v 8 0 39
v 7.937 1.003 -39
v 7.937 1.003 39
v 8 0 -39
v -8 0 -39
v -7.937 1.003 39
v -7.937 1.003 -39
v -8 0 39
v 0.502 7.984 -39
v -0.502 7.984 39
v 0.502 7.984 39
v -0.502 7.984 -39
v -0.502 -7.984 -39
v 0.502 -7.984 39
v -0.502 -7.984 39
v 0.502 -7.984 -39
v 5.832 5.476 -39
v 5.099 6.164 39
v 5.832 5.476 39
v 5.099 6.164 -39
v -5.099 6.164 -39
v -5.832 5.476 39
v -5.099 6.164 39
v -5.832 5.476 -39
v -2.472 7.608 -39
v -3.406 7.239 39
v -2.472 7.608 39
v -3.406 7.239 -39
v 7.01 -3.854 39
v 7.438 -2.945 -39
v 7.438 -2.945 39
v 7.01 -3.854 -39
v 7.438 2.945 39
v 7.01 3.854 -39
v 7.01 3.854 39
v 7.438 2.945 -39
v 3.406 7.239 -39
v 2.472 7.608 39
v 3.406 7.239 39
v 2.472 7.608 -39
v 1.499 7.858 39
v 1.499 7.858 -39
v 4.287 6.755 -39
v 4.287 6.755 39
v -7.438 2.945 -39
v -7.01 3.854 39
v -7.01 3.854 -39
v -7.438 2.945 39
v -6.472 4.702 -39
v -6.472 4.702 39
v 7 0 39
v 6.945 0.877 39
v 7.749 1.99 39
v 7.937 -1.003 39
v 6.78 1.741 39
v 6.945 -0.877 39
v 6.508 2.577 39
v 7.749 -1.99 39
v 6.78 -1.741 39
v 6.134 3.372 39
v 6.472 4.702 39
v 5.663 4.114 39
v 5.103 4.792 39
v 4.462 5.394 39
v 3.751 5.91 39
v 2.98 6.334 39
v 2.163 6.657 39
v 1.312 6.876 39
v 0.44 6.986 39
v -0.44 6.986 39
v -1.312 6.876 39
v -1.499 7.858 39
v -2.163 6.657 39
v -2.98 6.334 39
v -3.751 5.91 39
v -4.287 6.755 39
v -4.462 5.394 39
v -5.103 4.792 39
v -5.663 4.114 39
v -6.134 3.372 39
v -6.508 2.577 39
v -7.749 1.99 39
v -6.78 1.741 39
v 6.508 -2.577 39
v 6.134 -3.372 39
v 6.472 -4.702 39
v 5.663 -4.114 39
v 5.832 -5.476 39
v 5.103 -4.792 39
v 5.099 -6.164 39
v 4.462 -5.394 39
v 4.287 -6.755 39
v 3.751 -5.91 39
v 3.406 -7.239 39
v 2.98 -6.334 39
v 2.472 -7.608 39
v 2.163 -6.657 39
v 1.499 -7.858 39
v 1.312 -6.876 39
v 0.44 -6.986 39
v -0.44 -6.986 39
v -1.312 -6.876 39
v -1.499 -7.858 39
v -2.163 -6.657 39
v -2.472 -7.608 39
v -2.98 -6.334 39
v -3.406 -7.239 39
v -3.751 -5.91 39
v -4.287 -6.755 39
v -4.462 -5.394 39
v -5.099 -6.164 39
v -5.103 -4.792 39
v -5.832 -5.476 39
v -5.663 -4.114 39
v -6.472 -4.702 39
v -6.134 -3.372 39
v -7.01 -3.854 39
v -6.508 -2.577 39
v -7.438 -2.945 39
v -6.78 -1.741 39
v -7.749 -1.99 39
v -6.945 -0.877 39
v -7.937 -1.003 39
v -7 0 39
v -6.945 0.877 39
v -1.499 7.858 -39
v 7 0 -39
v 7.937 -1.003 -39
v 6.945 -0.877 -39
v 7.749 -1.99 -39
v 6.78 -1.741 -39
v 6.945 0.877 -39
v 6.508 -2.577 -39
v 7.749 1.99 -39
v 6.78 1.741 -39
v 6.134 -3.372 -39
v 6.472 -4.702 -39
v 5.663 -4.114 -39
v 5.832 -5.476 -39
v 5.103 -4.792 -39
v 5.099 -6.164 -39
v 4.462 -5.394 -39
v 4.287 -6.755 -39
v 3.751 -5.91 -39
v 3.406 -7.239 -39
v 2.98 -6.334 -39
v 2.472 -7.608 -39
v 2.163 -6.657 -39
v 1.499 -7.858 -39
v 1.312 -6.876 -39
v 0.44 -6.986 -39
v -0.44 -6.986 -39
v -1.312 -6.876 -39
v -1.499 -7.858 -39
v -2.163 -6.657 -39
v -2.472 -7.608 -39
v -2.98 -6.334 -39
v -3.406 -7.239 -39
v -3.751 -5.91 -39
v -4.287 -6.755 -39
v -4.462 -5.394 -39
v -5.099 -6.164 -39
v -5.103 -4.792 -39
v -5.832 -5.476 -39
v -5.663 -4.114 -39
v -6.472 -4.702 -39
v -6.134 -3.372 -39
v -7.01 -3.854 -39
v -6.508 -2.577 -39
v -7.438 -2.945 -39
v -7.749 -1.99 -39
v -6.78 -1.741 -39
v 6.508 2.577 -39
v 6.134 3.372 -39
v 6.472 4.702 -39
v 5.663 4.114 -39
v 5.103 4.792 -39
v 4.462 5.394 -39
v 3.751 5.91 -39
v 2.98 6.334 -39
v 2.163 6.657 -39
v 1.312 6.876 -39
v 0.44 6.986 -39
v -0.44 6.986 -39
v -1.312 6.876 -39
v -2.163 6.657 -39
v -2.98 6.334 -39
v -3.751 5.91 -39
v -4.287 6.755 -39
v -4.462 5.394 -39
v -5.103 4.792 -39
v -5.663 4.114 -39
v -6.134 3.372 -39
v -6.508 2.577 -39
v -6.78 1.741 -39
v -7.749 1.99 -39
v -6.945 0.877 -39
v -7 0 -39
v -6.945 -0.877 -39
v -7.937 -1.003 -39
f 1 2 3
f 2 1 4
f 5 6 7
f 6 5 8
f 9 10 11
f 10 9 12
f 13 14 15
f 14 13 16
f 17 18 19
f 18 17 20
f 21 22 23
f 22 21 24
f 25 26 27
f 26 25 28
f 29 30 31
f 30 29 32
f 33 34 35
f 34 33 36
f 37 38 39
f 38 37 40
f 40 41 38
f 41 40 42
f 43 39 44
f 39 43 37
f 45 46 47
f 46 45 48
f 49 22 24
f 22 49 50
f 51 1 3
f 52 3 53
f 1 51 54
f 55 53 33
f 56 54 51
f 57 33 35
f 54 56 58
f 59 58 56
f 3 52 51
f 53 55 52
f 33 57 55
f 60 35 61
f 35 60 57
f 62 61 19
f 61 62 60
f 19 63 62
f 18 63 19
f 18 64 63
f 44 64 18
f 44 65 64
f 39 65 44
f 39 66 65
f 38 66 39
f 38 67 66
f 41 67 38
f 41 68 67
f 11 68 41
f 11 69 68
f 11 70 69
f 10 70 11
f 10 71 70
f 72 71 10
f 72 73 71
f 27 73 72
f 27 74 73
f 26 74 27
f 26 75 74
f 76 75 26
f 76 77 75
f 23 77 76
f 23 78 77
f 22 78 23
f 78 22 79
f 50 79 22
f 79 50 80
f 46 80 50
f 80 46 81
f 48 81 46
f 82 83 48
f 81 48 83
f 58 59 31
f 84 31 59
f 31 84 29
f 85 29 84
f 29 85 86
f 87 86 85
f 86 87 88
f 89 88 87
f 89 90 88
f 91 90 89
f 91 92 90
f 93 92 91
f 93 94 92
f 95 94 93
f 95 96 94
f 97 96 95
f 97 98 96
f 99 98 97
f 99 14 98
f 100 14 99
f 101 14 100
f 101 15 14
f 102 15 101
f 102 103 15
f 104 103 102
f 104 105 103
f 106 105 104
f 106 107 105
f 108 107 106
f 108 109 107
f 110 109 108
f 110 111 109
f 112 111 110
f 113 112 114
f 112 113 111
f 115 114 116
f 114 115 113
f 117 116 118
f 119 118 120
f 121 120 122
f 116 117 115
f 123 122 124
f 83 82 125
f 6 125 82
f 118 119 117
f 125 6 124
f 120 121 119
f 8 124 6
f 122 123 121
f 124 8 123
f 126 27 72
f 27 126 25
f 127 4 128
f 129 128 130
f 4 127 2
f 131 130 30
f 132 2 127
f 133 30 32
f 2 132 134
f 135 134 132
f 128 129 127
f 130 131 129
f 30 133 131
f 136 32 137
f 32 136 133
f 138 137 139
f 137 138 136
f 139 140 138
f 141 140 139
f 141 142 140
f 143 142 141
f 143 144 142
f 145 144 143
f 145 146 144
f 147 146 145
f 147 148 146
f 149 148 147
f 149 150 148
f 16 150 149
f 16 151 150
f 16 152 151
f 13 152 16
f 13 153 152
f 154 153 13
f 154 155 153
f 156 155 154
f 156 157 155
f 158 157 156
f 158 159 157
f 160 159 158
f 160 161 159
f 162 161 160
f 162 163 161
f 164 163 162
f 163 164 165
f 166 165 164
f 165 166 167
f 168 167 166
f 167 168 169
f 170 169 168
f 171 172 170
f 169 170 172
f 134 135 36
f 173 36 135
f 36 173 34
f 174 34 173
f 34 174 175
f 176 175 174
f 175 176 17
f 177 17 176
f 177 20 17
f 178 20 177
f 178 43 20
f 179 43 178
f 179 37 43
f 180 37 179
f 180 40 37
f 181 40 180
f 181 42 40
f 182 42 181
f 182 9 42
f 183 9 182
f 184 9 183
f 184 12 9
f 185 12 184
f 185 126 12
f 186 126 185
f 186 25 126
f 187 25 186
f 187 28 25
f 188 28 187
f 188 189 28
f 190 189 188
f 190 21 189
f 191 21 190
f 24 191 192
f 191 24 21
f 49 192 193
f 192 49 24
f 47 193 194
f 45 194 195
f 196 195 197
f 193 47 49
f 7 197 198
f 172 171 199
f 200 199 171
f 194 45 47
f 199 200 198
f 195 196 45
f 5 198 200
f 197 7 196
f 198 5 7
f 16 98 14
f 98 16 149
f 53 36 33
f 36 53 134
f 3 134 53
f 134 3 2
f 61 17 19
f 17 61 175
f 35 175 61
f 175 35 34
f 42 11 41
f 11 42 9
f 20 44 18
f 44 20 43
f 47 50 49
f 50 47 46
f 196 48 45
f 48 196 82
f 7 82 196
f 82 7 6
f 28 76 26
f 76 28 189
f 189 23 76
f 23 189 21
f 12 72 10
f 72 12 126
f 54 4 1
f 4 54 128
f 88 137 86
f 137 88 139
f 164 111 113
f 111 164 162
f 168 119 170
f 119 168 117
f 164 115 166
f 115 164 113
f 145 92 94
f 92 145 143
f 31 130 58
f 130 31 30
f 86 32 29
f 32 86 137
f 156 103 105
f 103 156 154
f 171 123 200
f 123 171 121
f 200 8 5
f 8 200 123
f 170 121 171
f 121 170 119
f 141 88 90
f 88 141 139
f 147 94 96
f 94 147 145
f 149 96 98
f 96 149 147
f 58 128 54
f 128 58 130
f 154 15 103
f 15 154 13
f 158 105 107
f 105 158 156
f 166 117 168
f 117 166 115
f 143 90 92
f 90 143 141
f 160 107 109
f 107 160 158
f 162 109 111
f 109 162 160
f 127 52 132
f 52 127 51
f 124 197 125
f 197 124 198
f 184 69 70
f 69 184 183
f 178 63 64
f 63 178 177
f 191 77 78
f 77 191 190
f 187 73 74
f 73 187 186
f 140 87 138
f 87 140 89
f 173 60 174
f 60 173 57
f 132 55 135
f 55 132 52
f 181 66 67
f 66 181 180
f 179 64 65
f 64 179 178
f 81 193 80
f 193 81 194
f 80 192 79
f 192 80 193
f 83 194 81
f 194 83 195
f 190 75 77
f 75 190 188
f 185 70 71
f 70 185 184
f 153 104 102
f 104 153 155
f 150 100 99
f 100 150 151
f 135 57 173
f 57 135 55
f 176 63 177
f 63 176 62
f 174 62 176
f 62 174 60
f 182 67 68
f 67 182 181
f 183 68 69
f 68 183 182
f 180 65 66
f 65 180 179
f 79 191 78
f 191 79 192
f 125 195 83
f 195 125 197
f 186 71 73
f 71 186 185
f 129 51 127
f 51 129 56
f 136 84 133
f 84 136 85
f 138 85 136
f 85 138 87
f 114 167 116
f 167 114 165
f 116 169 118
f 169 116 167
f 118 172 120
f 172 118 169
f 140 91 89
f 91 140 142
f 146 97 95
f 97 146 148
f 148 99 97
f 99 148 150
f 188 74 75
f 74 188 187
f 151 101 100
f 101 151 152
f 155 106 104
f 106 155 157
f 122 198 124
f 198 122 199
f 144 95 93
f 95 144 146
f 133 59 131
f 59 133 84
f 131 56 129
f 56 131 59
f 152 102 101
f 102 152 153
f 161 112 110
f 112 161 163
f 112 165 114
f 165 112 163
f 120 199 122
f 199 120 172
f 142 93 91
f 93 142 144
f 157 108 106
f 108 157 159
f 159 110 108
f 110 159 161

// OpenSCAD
$fn = 50;


difference() {
	union() {
		translate(v = [0, 0, -39.0000000000]) {
			cylinder(h = 78, r = 8.0000000000);
		}
	}
	union() {
		translate(v = [0, 0, -100.0000000000]) {
			cylinder(h = 200, r = 7);
		}
	}
}
